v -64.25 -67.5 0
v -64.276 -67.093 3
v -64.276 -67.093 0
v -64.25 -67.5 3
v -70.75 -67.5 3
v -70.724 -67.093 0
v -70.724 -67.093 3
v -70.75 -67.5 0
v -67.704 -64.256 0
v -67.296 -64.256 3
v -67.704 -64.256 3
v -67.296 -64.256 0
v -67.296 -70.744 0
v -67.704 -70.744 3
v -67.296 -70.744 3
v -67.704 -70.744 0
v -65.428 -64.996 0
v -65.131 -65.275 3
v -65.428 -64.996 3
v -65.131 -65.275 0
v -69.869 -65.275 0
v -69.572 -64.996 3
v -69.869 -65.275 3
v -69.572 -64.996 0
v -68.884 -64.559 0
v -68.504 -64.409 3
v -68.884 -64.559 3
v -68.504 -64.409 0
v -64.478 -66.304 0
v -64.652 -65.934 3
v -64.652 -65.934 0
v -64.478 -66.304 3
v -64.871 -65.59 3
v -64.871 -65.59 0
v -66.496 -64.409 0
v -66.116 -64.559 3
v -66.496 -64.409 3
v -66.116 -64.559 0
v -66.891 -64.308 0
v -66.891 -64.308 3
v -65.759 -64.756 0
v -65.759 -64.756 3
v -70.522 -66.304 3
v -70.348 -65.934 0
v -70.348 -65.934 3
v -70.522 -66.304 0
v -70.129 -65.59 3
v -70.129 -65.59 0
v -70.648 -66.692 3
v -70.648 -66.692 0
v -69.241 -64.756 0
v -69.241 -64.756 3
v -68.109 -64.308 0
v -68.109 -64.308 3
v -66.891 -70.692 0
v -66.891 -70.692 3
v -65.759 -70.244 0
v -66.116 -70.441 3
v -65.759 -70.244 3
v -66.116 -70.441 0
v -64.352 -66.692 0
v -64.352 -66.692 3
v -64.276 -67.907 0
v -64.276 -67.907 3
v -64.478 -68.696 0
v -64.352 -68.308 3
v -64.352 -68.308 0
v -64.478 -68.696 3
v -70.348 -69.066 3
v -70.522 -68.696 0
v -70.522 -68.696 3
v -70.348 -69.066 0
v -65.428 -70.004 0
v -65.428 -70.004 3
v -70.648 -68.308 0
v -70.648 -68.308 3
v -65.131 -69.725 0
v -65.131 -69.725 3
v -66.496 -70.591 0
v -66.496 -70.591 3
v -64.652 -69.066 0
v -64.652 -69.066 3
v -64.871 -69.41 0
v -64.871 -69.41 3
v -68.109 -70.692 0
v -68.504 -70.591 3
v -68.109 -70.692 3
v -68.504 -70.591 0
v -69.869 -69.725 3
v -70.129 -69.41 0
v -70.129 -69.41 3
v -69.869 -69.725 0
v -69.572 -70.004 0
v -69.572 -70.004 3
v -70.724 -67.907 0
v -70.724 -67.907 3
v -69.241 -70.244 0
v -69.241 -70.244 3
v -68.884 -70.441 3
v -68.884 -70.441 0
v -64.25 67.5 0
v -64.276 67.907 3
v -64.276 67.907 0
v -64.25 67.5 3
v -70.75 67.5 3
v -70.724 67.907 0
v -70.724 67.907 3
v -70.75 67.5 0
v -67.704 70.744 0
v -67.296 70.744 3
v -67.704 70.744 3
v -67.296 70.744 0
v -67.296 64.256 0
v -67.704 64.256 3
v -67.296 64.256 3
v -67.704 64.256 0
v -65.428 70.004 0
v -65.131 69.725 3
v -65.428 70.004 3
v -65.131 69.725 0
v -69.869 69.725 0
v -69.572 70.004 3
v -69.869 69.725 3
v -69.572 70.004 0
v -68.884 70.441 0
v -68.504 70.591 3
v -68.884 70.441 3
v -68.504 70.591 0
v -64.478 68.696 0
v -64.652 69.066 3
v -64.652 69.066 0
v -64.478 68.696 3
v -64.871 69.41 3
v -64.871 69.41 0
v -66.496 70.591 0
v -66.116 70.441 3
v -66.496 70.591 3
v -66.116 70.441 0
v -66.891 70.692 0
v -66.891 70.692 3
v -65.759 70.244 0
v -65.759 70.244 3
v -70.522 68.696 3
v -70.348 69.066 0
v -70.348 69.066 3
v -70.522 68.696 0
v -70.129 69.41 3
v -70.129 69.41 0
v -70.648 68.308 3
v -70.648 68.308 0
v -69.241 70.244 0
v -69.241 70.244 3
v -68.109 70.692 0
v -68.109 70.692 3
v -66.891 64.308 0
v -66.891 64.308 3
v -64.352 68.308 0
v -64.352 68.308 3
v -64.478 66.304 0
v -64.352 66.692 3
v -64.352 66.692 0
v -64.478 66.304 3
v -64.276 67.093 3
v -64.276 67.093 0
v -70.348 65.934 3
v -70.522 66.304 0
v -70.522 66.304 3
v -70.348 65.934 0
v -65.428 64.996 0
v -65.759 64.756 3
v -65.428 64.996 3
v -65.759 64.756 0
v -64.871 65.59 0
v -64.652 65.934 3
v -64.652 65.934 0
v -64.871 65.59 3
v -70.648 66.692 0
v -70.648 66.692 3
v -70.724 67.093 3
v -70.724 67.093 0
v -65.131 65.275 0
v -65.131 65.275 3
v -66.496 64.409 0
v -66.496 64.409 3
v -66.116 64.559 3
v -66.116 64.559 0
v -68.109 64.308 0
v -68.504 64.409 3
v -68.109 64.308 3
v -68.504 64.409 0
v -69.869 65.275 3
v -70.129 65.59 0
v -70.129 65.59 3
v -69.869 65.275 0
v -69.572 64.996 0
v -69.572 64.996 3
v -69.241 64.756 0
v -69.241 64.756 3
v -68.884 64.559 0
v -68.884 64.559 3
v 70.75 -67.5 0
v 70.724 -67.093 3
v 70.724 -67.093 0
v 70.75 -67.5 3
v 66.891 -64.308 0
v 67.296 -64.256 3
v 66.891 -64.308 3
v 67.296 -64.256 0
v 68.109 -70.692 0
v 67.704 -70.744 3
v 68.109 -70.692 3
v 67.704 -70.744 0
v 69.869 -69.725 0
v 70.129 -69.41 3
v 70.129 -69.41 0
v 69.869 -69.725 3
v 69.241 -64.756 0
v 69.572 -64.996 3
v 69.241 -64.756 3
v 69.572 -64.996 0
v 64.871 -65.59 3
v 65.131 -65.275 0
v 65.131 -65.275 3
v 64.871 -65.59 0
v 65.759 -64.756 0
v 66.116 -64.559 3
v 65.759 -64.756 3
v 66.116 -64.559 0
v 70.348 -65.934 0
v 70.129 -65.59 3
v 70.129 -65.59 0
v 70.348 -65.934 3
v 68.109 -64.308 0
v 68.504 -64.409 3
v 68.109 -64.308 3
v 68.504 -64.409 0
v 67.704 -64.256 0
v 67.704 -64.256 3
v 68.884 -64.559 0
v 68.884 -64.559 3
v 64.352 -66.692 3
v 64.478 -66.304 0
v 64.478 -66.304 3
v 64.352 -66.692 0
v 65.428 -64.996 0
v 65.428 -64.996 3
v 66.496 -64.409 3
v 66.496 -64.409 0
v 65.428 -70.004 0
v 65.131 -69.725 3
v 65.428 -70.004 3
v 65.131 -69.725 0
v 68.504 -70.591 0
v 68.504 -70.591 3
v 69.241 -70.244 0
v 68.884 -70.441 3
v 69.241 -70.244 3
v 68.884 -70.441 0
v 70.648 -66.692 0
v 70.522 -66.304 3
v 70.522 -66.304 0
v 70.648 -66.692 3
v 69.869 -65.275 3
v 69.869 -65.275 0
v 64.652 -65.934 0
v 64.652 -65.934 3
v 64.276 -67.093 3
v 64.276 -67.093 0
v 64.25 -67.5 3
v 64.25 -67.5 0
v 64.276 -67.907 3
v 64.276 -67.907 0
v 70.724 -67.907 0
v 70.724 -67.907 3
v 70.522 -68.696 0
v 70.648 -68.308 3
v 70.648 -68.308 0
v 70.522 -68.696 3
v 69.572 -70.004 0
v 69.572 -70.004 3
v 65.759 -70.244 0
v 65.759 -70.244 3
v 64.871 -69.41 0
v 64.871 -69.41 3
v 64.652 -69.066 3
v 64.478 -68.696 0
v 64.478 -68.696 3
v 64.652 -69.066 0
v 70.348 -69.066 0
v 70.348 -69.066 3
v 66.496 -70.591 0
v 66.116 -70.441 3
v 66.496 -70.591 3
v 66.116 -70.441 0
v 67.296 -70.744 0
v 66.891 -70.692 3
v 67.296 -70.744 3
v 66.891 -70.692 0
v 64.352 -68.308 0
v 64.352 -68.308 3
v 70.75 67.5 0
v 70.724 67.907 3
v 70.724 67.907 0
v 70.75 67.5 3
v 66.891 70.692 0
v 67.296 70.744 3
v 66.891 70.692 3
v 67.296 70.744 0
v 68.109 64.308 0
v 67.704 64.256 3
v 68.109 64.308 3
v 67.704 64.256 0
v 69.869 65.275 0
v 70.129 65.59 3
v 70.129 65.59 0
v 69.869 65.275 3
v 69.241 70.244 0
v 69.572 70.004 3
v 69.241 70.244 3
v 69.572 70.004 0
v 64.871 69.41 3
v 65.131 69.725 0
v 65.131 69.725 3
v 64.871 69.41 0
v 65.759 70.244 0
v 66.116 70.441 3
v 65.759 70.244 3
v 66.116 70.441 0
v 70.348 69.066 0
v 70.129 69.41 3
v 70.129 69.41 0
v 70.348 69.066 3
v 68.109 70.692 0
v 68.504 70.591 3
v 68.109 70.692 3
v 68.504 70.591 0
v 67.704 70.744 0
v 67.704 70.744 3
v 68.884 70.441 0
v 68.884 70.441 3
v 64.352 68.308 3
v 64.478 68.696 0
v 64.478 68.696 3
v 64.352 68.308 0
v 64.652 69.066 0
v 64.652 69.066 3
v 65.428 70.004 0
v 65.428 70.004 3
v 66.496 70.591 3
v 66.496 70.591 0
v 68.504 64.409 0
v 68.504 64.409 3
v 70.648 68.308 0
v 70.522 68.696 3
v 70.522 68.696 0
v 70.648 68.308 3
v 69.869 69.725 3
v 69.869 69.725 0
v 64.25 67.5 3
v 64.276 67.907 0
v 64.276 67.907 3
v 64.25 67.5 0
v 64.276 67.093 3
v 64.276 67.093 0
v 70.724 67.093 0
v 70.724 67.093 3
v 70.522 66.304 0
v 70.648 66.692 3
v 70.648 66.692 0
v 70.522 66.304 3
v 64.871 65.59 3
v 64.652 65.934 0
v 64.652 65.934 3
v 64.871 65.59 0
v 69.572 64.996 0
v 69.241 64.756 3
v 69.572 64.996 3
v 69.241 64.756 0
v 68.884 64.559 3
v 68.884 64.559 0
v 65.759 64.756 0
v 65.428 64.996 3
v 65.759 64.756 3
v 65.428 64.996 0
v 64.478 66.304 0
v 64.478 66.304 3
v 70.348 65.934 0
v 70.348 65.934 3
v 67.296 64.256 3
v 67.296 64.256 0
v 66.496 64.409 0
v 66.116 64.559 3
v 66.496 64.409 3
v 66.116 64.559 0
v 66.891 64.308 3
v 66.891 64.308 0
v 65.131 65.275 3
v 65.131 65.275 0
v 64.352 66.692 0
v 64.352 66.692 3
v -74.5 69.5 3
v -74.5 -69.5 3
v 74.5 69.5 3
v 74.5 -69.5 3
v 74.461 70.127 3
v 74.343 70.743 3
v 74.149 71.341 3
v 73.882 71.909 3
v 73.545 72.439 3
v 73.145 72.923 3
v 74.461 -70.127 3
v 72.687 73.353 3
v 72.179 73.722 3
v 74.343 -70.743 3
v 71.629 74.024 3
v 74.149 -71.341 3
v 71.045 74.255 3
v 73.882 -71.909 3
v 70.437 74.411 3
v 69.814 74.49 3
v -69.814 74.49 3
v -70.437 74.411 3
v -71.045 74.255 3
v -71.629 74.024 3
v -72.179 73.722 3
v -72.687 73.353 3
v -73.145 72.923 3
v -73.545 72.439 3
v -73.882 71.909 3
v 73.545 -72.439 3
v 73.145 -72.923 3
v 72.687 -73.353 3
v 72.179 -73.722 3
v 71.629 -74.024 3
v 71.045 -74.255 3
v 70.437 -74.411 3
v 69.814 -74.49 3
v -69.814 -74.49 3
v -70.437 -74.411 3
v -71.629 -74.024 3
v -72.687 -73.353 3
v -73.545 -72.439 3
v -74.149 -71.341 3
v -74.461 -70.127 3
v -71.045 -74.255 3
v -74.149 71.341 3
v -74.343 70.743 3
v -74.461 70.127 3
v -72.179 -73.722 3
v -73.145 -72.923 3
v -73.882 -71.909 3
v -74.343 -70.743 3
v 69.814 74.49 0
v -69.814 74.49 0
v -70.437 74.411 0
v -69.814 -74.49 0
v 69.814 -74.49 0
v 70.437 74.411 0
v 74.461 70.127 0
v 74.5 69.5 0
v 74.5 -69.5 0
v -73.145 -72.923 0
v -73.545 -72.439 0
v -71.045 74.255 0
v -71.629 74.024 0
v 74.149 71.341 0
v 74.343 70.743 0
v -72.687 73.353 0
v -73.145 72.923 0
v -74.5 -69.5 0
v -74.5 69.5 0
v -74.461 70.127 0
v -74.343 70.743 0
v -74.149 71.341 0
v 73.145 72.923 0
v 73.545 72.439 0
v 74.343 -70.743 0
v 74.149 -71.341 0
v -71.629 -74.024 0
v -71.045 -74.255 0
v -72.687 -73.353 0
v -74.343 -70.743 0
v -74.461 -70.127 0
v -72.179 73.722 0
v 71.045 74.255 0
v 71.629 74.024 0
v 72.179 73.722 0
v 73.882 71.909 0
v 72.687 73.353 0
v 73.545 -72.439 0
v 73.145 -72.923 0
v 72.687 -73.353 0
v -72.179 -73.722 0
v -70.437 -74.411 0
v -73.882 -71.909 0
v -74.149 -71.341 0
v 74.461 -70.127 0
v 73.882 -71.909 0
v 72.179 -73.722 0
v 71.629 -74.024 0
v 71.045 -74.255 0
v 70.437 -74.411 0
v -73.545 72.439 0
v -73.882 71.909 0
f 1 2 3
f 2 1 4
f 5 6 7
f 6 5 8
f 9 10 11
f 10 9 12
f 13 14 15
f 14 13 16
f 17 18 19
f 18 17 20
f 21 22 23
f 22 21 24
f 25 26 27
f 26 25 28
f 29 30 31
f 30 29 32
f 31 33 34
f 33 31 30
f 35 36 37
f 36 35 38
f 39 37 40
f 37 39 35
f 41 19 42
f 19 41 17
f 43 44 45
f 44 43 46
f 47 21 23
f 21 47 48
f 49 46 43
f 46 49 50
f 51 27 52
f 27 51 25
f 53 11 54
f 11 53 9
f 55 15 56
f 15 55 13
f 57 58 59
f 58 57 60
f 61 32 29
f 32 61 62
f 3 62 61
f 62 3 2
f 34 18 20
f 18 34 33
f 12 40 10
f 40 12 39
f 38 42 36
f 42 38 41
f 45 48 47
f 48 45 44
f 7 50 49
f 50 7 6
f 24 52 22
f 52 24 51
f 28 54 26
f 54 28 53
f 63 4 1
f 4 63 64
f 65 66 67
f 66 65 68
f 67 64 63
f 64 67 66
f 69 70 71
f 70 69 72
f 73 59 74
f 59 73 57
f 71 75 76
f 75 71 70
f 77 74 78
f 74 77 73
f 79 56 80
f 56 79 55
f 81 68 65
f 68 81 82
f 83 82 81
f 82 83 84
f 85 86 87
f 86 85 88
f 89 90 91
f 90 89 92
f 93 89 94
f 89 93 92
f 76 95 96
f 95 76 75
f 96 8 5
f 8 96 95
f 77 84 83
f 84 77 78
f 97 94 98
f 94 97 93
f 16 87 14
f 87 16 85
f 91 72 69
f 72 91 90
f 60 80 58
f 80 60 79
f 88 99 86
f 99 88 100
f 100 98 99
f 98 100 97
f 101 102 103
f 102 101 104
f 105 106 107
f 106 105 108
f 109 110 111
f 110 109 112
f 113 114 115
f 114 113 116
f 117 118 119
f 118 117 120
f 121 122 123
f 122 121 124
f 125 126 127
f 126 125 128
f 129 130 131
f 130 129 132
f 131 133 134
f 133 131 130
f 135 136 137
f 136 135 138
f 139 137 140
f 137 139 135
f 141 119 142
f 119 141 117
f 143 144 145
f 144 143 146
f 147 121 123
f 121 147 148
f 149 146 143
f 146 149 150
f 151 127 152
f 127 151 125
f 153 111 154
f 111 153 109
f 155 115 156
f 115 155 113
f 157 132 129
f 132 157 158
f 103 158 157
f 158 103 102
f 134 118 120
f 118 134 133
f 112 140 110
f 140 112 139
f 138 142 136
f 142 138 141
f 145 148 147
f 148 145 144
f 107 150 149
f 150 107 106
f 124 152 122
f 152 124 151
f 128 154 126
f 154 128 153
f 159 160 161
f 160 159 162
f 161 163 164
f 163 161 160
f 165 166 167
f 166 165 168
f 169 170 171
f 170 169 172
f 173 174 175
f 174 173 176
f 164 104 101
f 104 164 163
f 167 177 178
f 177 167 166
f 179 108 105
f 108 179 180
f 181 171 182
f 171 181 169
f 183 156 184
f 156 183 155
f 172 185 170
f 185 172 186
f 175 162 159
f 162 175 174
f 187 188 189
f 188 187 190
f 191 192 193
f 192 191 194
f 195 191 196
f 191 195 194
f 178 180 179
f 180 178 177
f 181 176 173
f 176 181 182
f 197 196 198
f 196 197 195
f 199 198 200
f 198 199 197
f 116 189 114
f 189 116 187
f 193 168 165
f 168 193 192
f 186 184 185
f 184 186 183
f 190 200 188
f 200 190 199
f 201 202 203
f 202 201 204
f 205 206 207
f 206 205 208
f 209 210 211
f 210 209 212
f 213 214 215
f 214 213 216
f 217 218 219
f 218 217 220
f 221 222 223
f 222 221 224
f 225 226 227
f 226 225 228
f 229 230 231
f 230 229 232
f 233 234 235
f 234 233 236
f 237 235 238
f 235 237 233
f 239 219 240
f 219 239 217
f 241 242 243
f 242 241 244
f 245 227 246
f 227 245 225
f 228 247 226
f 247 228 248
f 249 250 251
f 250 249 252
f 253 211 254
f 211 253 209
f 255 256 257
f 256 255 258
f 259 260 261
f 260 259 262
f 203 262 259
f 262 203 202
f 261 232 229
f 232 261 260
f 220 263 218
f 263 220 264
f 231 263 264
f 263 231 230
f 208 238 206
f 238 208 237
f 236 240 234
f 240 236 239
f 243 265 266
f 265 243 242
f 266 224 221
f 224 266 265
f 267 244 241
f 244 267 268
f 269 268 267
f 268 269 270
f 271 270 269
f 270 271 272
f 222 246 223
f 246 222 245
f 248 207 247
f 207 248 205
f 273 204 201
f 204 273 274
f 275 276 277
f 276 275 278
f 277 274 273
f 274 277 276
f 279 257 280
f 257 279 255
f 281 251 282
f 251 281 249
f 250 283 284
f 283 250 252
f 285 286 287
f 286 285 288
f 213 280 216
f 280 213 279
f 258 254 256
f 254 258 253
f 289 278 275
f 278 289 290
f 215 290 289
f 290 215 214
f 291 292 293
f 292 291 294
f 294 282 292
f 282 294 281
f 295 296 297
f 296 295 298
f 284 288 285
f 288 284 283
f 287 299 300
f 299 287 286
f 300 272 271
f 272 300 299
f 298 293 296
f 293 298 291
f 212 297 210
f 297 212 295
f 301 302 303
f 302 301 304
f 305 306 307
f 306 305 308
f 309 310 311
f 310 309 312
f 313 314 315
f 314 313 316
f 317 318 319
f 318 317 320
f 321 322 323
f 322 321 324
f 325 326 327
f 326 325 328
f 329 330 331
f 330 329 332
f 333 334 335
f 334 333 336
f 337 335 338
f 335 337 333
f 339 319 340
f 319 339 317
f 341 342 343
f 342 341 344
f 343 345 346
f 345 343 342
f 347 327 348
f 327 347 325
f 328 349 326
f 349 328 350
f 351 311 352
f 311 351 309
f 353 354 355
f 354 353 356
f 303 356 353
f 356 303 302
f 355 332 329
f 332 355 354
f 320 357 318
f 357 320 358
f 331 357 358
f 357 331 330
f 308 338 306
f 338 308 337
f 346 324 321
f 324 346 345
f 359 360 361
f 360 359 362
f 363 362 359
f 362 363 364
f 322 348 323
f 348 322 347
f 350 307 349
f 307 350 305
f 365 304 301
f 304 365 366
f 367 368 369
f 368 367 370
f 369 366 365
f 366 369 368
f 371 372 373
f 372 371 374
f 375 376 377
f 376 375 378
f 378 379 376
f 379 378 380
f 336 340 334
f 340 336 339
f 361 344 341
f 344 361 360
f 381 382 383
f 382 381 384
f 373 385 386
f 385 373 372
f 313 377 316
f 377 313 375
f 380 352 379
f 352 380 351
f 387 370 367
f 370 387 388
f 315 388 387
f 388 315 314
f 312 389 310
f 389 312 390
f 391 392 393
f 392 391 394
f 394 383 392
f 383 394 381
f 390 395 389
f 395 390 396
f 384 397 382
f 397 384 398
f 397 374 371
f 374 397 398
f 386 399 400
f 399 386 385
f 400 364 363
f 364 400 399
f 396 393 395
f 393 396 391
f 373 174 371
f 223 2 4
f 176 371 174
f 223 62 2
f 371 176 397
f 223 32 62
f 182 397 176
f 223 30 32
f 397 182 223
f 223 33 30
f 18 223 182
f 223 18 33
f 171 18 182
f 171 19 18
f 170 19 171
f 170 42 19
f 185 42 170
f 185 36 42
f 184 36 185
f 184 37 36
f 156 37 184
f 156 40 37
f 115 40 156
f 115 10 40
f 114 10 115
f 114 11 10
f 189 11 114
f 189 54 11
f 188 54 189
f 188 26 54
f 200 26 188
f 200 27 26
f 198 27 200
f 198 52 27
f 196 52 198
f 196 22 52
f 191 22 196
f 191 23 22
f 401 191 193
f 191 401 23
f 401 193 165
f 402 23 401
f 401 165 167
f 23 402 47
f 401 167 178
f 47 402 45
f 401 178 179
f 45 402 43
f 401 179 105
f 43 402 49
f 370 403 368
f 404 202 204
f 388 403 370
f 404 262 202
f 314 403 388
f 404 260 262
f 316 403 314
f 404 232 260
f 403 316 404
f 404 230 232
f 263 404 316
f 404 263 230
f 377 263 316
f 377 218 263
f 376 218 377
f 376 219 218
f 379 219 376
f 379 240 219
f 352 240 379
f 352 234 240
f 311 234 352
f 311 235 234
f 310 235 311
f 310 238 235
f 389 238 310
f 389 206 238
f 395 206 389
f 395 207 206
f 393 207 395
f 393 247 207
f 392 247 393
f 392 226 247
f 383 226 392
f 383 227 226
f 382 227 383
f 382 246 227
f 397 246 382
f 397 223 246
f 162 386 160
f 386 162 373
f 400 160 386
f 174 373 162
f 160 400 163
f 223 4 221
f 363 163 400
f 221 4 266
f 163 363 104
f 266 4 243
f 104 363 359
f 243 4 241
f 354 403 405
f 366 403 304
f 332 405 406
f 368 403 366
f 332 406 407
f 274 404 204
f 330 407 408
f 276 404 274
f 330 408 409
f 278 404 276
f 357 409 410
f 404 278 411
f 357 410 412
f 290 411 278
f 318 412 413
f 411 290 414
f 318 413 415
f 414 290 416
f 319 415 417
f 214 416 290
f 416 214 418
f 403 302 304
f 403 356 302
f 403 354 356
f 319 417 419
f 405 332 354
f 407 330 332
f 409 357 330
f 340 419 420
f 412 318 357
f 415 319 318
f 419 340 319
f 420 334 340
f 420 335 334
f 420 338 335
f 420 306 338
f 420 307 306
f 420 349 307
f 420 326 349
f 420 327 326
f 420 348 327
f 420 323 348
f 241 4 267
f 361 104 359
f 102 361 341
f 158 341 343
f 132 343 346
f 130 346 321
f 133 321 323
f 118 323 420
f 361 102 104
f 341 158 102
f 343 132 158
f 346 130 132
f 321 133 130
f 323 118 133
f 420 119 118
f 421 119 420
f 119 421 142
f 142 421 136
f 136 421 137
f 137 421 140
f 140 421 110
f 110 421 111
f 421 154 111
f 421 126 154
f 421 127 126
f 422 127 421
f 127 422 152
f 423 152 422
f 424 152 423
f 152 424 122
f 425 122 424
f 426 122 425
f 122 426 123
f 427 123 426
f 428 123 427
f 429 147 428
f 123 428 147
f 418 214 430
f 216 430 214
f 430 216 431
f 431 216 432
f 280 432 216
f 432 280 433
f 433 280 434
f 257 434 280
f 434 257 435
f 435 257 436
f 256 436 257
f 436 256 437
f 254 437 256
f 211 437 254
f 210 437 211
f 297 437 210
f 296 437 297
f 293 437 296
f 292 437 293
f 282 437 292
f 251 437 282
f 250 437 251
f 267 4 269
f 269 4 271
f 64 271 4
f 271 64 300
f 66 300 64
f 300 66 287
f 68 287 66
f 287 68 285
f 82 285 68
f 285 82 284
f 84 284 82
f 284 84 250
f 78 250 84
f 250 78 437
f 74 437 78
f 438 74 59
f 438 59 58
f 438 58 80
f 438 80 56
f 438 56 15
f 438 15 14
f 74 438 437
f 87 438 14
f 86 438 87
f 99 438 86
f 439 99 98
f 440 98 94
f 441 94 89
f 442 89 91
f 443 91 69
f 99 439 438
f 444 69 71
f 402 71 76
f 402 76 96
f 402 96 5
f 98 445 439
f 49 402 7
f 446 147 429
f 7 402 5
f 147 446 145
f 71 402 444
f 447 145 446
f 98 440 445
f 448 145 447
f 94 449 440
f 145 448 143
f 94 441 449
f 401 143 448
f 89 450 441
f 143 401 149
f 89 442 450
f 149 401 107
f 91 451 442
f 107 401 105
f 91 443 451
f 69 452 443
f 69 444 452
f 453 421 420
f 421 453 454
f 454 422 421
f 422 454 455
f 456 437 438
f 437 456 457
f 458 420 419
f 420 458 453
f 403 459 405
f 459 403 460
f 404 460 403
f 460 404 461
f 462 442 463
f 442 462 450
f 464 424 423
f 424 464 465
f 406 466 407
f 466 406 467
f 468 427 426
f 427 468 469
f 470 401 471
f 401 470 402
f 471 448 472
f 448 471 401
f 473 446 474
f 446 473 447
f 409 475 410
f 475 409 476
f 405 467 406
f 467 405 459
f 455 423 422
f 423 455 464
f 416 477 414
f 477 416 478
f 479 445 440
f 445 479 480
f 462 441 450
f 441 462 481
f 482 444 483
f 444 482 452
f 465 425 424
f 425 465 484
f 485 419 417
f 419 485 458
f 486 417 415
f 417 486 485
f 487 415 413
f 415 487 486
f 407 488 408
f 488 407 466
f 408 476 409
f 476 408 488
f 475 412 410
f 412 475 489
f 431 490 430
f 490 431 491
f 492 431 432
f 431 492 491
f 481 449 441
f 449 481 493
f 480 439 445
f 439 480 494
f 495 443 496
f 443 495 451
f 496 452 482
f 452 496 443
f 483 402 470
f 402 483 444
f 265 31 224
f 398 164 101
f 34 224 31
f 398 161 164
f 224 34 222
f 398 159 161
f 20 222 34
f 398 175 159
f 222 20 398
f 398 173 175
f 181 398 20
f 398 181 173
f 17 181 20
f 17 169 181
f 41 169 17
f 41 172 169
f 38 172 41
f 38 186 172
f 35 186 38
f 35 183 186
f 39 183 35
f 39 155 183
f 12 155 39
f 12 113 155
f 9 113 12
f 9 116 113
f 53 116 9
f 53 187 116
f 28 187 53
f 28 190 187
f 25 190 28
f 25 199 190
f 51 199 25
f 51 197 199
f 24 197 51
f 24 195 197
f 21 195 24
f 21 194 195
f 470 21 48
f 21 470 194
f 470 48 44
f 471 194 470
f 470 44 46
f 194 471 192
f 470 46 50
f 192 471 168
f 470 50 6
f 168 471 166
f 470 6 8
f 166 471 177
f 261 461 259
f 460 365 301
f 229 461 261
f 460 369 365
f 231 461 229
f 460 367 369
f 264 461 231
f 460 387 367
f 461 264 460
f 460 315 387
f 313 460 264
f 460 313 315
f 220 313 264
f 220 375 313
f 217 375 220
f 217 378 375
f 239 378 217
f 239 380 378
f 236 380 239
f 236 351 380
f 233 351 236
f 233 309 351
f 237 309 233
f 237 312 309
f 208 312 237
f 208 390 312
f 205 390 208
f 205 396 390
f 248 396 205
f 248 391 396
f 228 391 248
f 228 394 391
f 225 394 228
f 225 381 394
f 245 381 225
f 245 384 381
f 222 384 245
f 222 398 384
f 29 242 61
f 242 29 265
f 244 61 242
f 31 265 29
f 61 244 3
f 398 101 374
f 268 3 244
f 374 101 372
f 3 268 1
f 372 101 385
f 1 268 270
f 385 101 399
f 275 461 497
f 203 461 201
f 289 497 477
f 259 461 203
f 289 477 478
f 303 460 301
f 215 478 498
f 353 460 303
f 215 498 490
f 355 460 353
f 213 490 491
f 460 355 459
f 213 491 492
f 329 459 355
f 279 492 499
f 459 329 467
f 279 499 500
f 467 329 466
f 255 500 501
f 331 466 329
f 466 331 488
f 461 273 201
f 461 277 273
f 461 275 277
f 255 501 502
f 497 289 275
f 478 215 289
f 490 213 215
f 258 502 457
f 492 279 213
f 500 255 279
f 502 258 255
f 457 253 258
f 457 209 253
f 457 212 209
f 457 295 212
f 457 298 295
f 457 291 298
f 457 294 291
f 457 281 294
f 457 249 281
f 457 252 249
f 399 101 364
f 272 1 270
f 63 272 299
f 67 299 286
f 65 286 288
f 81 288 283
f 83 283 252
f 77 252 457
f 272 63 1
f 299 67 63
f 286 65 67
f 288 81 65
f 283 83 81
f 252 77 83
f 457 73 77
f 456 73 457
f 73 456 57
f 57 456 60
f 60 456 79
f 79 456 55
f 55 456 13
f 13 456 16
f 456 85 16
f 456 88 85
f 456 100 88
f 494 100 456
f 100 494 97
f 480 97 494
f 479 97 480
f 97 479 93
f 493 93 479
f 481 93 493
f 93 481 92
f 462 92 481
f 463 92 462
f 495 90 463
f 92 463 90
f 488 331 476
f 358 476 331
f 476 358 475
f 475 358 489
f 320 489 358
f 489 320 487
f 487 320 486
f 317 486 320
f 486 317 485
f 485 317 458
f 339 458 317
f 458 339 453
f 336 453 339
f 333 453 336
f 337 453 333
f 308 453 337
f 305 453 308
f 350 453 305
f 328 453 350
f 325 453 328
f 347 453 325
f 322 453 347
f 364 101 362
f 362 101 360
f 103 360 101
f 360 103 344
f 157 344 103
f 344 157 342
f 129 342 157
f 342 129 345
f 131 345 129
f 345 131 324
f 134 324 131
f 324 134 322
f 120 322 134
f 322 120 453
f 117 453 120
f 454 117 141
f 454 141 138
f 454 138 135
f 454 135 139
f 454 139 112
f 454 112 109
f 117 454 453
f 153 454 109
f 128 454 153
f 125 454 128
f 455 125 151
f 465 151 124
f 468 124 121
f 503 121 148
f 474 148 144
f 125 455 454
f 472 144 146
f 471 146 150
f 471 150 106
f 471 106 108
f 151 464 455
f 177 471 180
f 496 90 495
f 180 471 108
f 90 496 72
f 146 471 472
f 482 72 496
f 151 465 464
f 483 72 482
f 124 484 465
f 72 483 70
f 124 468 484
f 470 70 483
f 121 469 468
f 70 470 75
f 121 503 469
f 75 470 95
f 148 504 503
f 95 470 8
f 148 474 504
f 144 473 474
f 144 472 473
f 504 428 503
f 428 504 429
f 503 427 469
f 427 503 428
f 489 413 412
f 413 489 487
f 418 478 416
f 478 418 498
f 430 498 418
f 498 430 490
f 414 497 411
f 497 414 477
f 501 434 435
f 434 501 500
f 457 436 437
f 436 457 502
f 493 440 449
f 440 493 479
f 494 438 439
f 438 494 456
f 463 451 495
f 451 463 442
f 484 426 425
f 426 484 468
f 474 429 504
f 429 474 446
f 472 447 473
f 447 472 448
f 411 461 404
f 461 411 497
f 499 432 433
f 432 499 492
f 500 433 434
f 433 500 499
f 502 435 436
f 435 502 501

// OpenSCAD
$fn = 50;


difference() {
	union() {
		hull() {
			translate(v = [-69.5000000000, 69.5000000000, 0]) {
				cylinder(h = 3, r = 5);
			}
			translate(v = [69.5000000000, 69.5000000000, 0]) {
				cylinder(h = 3, r = 5);
			}
			translate(v = [-69.5000000000, -69.5000000000, 0]) {
				cylinder(h = 3, r = 5);
			}
			translate(v = [69.5000000000, -69.5000000000, 0]) {
				cylinder(h = 3, r = 5);
			}
		}
	}
	union() {
		translate(v = [-67.5000000000, -67.5000000000, -100.0000000000]) {
			cylinder(h = 200, r = 3.2500000000);
		}
		translate(v = [-67.5000000000, 67.5000000000, -100.0000000000]) {
			cylinder(h = 200, r = 3.2500000000);
		}
		translate(v = [67.5000000000, -67.5000000000, -100.0000000000]) {
			cylinder(h = 200, r = 3.2500000000);
		}
		translate(v = [67.5000000000, 67.5000000000, -100.0000000000]) {
			cylinder(h = 200, r = 3.2500000000);
		}
	}
}
